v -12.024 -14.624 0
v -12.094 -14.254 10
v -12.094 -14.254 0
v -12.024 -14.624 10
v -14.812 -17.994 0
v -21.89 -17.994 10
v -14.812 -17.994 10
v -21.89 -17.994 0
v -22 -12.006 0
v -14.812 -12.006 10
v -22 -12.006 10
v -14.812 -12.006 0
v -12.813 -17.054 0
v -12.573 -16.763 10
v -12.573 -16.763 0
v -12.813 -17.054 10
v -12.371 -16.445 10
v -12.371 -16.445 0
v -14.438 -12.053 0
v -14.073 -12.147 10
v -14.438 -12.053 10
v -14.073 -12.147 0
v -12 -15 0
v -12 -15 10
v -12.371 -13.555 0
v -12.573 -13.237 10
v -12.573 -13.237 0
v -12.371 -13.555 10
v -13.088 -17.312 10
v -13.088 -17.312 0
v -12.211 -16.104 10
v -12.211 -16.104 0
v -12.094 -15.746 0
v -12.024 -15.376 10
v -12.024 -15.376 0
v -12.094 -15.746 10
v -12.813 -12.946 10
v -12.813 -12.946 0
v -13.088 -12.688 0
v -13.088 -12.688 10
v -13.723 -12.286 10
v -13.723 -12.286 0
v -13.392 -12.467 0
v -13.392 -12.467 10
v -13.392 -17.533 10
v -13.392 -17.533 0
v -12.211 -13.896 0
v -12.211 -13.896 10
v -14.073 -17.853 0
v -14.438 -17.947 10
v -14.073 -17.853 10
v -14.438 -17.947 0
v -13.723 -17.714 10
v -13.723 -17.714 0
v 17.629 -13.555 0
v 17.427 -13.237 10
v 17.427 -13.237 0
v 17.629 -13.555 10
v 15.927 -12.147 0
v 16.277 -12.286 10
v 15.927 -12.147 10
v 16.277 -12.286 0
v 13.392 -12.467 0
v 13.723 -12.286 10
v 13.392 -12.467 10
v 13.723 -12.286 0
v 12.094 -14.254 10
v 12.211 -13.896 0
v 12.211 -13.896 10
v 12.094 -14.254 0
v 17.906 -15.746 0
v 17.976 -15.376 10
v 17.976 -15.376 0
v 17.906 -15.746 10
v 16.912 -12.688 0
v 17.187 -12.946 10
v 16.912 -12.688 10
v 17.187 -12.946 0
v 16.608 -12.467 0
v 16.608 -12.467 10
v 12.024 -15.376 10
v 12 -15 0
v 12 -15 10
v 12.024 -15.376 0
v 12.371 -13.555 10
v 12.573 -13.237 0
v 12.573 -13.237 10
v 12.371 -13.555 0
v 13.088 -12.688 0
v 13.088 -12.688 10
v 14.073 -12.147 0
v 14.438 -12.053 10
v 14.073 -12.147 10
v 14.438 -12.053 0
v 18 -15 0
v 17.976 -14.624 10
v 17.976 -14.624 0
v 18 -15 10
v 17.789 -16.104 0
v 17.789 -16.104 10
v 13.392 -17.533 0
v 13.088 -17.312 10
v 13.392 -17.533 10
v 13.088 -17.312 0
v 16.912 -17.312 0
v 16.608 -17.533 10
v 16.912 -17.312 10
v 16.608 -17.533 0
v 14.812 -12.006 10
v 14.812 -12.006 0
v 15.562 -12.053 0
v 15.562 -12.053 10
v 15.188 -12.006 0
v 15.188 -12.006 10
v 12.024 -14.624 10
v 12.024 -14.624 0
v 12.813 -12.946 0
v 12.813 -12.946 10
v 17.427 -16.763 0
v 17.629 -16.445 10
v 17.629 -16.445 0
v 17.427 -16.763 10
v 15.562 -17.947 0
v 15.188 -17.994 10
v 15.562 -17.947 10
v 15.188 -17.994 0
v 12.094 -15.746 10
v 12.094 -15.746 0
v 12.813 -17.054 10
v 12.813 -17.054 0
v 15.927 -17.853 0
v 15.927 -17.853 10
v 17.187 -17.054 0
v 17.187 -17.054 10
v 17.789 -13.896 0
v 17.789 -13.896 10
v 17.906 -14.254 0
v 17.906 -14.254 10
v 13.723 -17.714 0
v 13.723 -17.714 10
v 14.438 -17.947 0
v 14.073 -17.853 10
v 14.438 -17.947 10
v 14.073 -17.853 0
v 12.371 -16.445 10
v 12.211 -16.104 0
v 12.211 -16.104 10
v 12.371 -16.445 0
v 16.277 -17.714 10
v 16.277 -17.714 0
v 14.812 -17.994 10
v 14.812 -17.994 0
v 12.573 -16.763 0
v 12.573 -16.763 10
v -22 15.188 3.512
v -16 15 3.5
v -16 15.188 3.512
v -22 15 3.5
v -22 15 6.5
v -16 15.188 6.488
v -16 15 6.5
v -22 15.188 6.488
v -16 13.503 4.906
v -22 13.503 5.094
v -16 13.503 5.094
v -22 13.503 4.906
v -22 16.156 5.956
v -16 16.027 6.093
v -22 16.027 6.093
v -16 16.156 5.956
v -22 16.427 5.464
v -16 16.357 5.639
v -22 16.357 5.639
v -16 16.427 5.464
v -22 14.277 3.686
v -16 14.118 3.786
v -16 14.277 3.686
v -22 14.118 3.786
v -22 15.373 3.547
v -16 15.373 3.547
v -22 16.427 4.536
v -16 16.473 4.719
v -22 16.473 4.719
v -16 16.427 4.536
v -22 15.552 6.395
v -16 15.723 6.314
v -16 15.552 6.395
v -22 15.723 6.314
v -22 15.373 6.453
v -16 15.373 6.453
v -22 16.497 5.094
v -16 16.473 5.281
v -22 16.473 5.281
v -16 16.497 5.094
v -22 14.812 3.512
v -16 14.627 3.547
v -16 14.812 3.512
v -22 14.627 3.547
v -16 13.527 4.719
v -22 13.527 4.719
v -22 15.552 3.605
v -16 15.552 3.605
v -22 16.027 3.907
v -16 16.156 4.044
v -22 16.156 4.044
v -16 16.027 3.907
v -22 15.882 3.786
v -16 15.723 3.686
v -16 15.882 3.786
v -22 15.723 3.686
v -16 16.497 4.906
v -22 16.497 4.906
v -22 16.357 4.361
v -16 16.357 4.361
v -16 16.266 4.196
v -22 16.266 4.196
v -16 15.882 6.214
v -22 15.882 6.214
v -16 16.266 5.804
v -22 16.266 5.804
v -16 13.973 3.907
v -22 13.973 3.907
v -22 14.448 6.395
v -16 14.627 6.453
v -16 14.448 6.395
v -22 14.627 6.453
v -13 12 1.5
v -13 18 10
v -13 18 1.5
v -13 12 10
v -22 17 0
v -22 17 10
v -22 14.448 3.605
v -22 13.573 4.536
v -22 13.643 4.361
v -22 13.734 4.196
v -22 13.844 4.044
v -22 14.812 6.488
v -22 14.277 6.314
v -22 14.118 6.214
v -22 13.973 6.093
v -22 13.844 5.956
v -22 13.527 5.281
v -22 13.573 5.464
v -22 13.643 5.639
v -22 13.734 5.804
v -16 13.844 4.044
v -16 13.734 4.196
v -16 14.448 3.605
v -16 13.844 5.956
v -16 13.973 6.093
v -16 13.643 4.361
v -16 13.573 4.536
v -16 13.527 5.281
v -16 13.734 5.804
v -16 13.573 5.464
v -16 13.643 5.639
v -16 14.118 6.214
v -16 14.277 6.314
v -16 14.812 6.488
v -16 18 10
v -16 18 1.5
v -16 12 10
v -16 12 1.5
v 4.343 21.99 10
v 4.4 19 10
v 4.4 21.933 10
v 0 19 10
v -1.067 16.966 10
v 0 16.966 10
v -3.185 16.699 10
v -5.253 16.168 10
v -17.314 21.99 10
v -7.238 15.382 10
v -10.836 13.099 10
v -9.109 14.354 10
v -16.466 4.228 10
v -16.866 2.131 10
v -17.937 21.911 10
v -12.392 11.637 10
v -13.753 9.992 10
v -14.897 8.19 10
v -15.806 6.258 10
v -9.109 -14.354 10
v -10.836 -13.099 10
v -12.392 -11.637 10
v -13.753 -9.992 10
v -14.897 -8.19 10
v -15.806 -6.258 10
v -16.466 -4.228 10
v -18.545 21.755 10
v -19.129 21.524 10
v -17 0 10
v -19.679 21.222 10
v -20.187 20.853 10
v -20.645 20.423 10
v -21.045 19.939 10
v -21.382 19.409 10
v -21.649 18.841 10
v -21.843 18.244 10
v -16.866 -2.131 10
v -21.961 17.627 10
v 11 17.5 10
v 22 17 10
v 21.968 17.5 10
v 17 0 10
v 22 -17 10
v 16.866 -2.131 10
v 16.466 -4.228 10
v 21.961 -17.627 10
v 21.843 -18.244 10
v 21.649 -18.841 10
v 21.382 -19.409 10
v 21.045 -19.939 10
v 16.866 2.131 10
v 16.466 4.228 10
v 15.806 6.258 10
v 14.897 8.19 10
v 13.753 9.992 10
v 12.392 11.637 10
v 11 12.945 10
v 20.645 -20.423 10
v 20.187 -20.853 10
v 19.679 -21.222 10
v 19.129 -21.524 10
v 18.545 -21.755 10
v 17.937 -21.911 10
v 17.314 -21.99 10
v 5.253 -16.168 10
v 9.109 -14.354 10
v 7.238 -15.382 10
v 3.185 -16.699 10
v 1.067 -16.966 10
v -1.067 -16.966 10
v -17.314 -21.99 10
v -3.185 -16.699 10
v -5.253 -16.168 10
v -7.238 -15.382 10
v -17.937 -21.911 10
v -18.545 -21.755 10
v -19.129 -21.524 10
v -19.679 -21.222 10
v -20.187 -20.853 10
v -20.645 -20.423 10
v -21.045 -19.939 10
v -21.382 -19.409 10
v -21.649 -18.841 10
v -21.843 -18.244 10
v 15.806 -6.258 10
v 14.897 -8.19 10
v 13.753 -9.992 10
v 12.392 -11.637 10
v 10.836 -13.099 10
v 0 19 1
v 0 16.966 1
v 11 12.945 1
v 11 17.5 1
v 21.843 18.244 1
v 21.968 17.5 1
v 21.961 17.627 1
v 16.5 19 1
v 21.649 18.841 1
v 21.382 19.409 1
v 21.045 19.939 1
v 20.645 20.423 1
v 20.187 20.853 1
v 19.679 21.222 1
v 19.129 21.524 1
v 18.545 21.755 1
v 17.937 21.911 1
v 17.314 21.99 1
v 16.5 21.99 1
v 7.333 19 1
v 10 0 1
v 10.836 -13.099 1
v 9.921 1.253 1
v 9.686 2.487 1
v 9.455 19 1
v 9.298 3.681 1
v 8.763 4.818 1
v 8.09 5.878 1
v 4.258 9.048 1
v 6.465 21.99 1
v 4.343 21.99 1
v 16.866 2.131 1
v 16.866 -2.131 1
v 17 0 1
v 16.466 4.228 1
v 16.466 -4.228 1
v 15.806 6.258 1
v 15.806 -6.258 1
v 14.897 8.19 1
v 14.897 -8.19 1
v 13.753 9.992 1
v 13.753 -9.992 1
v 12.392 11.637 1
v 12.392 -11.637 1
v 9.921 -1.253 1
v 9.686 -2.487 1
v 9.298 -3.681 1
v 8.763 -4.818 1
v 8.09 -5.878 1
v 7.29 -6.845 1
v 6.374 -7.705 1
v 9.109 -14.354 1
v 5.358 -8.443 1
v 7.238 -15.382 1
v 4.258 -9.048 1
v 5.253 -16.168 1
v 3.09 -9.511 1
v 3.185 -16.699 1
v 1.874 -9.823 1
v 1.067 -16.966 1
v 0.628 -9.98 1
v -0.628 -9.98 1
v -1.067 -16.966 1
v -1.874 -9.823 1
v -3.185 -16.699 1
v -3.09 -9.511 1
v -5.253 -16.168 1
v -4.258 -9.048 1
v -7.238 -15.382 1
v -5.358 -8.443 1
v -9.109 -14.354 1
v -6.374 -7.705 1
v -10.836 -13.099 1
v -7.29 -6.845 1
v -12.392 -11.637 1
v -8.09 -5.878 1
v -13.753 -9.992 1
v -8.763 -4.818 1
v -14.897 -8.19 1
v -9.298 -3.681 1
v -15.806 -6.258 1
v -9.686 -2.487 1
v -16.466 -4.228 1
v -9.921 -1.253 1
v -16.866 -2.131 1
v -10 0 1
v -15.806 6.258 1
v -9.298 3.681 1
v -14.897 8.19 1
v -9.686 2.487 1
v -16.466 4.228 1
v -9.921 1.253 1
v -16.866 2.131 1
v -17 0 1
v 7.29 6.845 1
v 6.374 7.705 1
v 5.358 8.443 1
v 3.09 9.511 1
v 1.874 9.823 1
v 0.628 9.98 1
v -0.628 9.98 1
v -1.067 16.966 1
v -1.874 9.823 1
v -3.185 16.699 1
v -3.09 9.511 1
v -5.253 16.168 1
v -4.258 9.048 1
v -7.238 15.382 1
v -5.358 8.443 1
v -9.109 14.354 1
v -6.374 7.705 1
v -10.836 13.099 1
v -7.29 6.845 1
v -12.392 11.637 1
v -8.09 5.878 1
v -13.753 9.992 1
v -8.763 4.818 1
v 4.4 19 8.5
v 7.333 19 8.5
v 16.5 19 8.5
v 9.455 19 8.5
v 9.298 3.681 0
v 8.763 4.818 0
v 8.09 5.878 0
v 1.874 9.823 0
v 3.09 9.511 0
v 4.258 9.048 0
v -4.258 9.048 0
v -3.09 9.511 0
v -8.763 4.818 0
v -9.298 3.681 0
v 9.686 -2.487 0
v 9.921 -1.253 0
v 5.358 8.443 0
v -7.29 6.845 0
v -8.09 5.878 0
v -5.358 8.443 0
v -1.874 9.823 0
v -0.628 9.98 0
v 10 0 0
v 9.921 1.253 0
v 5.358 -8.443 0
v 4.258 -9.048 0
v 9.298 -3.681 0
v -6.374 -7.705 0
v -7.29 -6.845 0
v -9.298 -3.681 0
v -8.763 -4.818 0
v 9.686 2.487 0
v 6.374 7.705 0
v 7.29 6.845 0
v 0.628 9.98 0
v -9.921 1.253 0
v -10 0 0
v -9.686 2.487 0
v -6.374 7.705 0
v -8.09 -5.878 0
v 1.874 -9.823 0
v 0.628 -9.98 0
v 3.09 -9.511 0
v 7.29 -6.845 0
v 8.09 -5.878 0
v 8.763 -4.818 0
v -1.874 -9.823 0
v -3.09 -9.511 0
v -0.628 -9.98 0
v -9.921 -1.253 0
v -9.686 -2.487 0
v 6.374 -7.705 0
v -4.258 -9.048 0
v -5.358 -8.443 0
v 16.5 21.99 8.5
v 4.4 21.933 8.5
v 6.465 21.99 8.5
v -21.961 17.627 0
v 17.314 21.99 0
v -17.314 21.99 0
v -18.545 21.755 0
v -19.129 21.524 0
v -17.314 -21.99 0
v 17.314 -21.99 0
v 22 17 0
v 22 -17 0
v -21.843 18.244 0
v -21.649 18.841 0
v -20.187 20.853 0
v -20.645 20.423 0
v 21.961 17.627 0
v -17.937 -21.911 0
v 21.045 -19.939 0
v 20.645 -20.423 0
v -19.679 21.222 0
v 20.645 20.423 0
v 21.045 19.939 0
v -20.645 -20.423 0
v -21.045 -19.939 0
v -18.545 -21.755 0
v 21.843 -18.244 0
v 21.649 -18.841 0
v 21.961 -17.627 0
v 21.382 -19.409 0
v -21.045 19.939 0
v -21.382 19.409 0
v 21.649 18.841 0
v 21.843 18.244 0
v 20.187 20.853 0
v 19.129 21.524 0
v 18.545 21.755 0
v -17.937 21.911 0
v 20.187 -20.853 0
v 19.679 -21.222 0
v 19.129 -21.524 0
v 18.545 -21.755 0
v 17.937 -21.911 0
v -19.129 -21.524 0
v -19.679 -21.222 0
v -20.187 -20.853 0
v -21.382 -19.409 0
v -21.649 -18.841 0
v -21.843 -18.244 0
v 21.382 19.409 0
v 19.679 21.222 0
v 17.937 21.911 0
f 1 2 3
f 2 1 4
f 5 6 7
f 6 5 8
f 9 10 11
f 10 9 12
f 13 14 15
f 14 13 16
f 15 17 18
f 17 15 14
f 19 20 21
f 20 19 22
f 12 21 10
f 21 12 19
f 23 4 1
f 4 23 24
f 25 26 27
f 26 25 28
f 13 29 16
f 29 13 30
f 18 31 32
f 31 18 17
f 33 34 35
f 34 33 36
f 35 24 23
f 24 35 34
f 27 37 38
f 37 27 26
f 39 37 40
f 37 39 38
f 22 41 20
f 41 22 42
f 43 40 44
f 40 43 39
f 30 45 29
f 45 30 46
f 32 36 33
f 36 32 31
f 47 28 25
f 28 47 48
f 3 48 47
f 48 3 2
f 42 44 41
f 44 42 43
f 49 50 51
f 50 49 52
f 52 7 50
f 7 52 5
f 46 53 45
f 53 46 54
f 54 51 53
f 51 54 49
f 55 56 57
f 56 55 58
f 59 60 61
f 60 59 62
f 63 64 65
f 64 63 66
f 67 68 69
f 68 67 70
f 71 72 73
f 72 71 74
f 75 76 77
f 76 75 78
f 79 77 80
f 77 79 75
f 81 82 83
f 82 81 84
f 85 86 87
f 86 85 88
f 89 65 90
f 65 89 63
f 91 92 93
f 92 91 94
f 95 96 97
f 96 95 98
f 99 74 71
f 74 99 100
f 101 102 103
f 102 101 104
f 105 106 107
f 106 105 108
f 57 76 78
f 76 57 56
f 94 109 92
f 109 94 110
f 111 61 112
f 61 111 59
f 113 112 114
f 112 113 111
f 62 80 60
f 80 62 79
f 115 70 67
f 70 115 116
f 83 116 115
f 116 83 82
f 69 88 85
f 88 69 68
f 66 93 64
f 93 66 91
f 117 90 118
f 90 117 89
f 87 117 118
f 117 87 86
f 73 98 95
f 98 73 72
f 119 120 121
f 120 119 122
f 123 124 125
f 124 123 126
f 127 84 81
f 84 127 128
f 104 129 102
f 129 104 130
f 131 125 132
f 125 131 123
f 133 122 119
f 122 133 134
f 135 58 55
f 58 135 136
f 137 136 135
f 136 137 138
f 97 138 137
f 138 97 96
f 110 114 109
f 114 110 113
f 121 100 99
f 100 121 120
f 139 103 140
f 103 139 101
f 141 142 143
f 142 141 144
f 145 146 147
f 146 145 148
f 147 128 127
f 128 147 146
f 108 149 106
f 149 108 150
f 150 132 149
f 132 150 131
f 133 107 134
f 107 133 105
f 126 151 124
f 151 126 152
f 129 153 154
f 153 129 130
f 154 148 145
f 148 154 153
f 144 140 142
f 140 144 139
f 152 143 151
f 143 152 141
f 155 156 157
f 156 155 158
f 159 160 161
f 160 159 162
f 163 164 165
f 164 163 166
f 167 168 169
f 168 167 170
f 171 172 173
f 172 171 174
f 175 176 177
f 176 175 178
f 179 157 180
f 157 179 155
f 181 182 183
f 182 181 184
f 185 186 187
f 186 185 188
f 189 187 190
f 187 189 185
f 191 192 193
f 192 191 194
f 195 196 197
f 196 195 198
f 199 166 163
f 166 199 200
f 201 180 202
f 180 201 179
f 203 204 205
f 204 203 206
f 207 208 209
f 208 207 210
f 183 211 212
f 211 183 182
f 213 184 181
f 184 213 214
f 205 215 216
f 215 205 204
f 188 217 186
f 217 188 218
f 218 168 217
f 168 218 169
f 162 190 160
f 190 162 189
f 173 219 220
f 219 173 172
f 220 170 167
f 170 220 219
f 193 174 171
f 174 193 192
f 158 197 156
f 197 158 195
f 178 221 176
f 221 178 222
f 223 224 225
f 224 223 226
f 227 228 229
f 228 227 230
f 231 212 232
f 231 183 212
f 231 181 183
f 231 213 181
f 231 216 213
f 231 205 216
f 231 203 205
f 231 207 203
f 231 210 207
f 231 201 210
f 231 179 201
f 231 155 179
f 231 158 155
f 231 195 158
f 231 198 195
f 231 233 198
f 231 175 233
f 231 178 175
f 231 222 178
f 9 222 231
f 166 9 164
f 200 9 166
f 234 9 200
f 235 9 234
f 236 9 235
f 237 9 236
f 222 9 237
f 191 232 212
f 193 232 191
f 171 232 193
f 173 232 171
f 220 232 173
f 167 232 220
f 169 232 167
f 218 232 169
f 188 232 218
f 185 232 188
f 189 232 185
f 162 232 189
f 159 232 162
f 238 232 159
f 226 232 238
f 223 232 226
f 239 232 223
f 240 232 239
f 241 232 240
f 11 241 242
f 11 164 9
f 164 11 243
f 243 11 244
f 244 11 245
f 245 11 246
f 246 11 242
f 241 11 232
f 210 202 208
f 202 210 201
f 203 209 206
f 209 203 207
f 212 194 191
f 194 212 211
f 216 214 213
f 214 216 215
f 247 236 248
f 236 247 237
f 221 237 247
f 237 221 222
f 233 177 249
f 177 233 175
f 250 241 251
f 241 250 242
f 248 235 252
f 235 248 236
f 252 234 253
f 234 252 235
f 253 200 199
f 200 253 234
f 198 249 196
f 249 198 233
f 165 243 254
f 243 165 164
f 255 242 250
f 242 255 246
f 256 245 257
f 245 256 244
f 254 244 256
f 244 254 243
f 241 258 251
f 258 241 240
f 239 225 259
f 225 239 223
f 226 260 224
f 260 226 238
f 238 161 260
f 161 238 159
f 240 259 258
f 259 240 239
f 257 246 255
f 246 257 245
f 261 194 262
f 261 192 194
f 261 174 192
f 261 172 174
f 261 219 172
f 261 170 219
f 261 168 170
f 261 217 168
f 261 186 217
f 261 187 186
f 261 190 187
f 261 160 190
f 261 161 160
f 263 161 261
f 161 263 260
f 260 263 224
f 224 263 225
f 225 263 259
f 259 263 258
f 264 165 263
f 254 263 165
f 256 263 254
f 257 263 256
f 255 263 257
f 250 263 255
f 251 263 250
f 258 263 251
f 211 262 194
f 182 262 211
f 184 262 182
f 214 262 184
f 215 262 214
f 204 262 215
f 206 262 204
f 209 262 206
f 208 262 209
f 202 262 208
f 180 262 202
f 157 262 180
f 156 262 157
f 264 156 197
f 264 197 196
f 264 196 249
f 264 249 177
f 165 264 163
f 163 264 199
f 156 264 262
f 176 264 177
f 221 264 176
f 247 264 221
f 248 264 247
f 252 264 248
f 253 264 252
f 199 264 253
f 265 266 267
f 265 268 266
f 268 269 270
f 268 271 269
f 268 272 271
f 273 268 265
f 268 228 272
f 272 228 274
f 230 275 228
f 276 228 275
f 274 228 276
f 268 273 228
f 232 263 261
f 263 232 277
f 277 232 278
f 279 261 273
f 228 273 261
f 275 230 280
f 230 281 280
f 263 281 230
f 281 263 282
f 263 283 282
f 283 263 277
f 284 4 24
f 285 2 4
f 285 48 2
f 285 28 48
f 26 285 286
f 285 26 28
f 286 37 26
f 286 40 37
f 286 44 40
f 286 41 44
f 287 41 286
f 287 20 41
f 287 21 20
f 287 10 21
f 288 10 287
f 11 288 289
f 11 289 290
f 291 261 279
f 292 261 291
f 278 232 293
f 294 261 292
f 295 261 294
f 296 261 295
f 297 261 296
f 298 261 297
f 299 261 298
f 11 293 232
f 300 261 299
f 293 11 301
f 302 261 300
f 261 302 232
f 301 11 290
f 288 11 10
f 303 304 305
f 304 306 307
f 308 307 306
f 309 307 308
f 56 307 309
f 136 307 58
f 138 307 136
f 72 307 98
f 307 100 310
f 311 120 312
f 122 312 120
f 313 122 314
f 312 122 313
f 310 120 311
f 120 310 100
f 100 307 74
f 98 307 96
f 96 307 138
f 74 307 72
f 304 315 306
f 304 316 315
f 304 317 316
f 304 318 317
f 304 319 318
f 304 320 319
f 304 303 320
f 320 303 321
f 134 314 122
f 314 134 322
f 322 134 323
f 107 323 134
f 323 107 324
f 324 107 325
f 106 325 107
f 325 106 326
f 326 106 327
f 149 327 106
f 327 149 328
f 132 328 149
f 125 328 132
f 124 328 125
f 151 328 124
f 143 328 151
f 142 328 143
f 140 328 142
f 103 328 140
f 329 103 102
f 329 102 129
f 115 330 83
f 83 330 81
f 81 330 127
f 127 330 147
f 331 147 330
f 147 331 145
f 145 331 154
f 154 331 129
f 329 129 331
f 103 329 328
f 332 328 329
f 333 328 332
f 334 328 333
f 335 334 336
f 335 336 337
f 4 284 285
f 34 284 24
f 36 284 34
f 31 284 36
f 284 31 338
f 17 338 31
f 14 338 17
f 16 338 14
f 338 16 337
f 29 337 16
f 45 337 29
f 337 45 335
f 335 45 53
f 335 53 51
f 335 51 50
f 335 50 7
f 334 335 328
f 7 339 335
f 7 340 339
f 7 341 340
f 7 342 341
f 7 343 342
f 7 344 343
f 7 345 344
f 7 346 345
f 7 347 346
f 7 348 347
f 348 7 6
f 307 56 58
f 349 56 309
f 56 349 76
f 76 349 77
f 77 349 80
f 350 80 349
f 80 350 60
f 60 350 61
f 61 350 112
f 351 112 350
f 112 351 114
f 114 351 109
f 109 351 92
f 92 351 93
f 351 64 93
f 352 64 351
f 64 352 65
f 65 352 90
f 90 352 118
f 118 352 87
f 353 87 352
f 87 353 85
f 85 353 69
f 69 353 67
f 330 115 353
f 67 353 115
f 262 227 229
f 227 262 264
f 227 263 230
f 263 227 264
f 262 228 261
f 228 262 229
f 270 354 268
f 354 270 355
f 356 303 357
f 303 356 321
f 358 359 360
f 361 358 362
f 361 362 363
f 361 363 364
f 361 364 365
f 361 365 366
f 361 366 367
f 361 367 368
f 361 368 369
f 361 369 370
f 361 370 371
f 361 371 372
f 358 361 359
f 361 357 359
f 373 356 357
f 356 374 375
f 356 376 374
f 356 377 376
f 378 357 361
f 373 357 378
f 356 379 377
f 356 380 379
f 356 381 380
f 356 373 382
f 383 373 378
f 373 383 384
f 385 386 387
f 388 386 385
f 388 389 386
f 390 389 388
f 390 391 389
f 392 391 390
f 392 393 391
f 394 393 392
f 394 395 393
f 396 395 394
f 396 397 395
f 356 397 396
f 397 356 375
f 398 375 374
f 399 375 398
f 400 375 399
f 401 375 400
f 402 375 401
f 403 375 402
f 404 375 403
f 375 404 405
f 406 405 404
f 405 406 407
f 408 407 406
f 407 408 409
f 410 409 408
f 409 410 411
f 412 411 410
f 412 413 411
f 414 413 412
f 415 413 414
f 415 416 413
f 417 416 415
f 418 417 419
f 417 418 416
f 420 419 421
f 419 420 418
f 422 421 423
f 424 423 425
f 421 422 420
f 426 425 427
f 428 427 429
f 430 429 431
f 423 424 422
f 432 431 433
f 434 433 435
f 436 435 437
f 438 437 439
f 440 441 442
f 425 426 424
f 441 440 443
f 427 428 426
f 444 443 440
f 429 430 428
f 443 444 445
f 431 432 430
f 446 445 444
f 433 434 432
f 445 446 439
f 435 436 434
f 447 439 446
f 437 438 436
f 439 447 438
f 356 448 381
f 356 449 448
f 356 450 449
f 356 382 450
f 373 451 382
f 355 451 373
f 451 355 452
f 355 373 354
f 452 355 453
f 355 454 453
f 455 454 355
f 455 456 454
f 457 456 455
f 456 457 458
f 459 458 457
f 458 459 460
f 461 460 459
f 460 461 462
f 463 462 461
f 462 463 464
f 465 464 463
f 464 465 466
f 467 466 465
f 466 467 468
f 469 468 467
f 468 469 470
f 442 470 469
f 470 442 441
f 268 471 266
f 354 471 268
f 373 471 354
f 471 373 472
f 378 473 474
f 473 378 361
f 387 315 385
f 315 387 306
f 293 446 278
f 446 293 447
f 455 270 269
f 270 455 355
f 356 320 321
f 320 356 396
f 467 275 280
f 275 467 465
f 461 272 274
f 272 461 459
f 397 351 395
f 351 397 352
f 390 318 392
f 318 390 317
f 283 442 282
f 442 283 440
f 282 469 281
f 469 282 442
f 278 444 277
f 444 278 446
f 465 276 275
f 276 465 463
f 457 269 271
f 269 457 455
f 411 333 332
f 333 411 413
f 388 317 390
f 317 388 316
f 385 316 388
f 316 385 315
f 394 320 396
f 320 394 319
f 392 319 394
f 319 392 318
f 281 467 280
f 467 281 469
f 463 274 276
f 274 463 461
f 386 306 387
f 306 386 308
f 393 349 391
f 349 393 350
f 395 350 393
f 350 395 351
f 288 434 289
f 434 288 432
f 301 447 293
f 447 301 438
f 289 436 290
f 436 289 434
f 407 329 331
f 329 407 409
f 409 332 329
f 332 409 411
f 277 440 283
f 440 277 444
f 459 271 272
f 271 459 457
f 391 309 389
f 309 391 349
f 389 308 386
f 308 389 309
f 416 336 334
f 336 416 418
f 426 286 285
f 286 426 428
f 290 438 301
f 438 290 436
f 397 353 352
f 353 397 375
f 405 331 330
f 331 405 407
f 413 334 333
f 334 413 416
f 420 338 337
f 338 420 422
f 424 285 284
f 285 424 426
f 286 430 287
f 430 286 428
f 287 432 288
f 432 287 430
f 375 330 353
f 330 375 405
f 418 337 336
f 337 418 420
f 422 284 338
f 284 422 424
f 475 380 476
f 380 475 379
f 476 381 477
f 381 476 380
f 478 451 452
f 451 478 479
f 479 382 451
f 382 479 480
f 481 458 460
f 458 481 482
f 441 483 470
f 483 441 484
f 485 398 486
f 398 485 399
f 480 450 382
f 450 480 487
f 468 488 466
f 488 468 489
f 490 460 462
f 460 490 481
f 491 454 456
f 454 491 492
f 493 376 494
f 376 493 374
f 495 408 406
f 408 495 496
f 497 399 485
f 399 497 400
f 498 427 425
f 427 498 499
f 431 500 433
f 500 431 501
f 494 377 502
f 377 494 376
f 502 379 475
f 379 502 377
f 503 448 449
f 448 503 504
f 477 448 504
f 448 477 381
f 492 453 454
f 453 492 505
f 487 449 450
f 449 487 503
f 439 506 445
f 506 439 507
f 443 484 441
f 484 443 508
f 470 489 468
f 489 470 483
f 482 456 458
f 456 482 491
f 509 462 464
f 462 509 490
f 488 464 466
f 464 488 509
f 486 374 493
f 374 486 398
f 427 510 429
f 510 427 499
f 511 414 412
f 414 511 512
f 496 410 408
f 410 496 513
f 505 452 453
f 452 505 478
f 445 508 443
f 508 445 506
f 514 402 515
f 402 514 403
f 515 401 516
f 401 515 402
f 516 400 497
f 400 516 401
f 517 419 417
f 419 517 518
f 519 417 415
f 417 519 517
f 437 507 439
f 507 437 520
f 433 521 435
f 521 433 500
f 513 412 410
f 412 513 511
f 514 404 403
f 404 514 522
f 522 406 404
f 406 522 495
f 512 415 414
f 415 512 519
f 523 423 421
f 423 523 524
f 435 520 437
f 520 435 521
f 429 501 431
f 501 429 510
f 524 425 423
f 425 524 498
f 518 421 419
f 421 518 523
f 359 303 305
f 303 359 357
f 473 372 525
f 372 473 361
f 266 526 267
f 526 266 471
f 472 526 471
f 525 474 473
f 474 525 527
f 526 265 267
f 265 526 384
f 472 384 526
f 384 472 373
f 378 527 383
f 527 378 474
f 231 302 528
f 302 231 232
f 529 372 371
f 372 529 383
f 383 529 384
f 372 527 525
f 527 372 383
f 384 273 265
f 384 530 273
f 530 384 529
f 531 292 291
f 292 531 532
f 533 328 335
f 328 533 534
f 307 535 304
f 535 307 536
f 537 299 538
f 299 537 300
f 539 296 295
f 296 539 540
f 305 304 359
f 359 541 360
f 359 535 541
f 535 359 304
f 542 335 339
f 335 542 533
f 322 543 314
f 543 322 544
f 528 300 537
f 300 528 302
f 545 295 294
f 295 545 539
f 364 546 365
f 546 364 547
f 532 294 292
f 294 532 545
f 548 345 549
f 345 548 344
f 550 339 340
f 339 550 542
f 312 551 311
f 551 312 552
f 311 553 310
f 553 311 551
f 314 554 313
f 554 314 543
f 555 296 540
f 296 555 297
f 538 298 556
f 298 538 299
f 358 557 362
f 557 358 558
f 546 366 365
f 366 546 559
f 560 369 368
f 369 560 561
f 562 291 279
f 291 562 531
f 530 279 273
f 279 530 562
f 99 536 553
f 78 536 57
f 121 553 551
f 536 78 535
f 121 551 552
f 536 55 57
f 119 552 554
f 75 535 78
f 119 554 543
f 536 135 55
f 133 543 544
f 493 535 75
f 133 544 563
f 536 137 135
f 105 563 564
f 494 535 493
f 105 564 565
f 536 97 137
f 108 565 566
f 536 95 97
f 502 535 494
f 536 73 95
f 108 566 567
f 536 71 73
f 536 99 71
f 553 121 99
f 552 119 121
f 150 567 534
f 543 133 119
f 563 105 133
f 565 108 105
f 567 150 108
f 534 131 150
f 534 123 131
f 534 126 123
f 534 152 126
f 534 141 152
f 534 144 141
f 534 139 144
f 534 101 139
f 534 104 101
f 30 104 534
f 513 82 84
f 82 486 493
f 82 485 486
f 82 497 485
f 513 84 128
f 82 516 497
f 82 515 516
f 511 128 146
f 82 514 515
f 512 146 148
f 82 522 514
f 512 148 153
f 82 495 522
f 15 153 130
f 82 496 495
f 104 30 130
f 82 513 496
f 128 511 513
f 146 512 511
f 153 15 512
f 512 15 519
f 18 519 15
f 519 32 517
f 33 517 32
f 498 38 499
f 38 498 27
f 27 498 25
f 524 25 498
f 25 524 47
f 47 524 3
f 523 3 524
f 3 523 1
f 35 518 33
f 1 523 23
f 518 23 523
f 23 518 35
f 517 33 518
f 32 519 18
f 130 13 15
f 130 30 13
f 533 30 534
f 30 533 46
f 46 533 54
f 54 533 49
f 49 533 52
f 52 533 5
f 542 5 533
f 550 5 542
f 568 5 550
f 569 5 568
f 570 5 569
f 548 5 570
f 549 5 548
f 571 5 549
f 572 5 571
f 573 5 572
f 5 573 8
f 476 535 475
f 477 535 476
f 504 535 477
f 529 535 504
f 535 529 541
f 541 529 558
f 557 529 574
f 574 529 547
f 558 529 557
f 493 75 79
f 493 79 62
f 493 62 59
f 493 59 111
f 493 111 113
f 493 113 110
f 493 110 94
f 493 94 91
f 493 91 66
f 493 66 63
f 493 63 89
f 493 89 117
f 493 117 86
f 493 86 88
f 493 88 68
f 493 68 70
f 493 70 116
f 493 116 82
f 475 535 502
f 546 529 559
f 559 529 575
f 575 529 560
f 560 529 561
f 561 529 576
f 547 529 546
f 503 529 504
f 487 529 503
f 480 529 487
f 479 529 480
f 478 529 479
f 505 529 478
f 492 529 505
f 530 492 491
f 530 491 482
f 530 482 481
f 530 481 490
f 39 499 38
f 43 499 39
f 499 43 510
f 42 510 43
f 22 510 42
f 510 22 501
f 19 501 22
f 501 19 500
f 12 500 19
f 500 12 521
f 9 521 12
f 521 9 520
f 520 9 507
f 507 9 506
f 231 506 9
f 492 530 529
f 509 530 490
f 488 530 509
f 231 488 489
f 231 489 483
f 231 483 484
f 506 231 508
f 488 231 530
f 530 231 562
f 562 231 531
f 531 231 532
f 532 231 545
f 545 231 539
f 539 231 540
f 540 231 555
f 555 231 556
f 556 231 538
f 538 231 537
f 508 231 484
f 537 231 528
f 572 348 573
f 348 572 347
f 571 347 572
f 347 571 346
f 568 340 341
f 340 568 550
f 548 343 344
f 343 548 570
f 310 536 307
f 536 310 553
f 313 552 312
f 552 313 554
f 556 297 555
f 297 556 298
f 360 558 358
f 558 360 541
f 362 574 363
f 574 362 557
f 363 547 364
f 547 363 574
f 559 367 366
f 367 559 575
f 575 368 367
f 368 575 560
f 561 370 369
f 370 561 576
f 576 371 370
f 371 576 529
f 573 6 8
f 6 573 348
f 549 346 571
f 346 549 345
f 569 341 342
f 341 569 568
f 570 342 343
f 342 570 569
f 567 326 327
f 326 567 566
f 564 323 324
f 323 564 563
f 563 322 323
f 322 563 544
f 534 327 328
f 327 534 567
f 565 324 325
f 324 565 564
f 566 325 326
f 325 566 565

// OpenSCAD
$fn = 50;


difference() {
	union() {
		translate(v = [0, 0, 0]) {
			rotate(a = [0, 0, 0]) {
				hull() {
					translate(v = [-17.0000000000, 17.0000000000, 0]) {
						rotate(a = [0, 0, 0]) {
							translate(v = [0, 0, 0]) {
								rotate(a = [0, 0, 0]) {
									cylinder(h = 10, r = 5);
								}
							}
						}
					}
					translate(v = [17.0000000000, 17.0000000000, 0]) {
						rotate(a = [0, 0, 0]) {
							translate(v = [0, 0, 0]) {
								rotate(a = [0, 0, 0]) {
									cylinder(h = 10, r = 5);
								}
							}
						}
					}
					translate(v = [-17.0000000000, -17.0000000000, 0]) {
						rotate(a = [0, 0, 0]) {
							translate(v = [0, 0, 0]) {
								rotate(a = [0, 0, 0]) {
									cylinder(h = 10, r = 5);
								}
							}
						}
					}
					translate(v = [17.0000000000, -17.0000000000, 0]) {
						rotate(a = [0, 0, 0]) {
							translate(v = [0, 0, 0]) {
								rotate(a = [0, 0, 0]) {
									cylinder(h = 10, r = 5);
								}
							}
						}
					}
				}
			}
		}
	}
	union() {
		translate(v = [-22.5000000000, -15.0000000000, -125]) {
			rotate(a = [0, 0, 0]) {
				hull() {
					translate(v = [7.5000000000, 0, 0]) {
						rotate(a = [0, 0, 0]) {
							translate(v = [0, 0, 0]) {
								rotate(a = [0, 0, 0]) {
									cylinder(h = 250, r = 3.0000000000);
								}
							}
						}
					}
					translate(v = [-7.5000000000, 0, 0]) {
						rotate(a = [0, 0, 0]) {
							translate(v = [0, 0, 0]) {
								rotate(a = [0, 0, 0]) {
									cylinder(h = 250, r = 3.0000000000);
								}
							}
						}
					}
				}
			}
		}
		translate(v = [15.0000000000, -15.0000000000, -125.0000000000]) {
			rotate(a = [0, 0, 0]) {
				cylinder(h = 250, r = 3.0000000000);
			}
		}
		translate(v = [-22.0000000000, 15.0000000000, 5.0000000000]) {
			rotate(a = [0, 90, 0]) {
				cylinder(h = 9, r = 1.5000000000);
			}
		}
		translate(v = [-16.0000000000, 12.0000000000, 1.5000000000]) {
			rotate(a = [0, 0, 0]) {
				cube(size = [3, 6, 8.5000000000]);
			}
		}
		translate(v = [0.0000000000, 11.0000000000, 1.0000000000]) {
			rotate(a = [0, 0, 0]) {
				cube(size = [11, 8, 12]);
			}
		}
		translate(v = [0, 0, 1.0000000000]) {
			rotate(a = [0, 0, 0]) {
				cylinder(h = 12, r = 17.0000000000);
			}
		}
		translate(v = [0, 0, -5.0000000000]) {
			rotate(a = [0, 0, 0]) {
				cylinder(h = 10, r = 10.0000000000);
			}
		}
		translate(v = [0.0000000000, 17.5000000000, 1]) {
			rotate(a = [0, 0, 0]) {
				cube(size = [22.0000000000, 1.5000000000, 12]);
			}
		}
		translate(v = [16.5000000000, 17.5000000000, 1]) {
			rotate(a = [0, 0, 0]) {
				cube(size = [5.5000000000, 4.5000000000, 12]);
			}
		}
		translate(v = [4.4000000000, 17.5000000000, 8.5000000000]) {
			rotate(a = [0, 0, 0]) {
				cube(size = [17.6000000000, 4.5000000000, 1.5000000000]);
			}
		}
		translate(v = [3.5833333333, 22.7500000000, 1]) {
			rotate(a = [0, 0, -45]) {
				cube(size = [7.5000000000, 1.5000000000, 12]);
			}
		}
	}
}
